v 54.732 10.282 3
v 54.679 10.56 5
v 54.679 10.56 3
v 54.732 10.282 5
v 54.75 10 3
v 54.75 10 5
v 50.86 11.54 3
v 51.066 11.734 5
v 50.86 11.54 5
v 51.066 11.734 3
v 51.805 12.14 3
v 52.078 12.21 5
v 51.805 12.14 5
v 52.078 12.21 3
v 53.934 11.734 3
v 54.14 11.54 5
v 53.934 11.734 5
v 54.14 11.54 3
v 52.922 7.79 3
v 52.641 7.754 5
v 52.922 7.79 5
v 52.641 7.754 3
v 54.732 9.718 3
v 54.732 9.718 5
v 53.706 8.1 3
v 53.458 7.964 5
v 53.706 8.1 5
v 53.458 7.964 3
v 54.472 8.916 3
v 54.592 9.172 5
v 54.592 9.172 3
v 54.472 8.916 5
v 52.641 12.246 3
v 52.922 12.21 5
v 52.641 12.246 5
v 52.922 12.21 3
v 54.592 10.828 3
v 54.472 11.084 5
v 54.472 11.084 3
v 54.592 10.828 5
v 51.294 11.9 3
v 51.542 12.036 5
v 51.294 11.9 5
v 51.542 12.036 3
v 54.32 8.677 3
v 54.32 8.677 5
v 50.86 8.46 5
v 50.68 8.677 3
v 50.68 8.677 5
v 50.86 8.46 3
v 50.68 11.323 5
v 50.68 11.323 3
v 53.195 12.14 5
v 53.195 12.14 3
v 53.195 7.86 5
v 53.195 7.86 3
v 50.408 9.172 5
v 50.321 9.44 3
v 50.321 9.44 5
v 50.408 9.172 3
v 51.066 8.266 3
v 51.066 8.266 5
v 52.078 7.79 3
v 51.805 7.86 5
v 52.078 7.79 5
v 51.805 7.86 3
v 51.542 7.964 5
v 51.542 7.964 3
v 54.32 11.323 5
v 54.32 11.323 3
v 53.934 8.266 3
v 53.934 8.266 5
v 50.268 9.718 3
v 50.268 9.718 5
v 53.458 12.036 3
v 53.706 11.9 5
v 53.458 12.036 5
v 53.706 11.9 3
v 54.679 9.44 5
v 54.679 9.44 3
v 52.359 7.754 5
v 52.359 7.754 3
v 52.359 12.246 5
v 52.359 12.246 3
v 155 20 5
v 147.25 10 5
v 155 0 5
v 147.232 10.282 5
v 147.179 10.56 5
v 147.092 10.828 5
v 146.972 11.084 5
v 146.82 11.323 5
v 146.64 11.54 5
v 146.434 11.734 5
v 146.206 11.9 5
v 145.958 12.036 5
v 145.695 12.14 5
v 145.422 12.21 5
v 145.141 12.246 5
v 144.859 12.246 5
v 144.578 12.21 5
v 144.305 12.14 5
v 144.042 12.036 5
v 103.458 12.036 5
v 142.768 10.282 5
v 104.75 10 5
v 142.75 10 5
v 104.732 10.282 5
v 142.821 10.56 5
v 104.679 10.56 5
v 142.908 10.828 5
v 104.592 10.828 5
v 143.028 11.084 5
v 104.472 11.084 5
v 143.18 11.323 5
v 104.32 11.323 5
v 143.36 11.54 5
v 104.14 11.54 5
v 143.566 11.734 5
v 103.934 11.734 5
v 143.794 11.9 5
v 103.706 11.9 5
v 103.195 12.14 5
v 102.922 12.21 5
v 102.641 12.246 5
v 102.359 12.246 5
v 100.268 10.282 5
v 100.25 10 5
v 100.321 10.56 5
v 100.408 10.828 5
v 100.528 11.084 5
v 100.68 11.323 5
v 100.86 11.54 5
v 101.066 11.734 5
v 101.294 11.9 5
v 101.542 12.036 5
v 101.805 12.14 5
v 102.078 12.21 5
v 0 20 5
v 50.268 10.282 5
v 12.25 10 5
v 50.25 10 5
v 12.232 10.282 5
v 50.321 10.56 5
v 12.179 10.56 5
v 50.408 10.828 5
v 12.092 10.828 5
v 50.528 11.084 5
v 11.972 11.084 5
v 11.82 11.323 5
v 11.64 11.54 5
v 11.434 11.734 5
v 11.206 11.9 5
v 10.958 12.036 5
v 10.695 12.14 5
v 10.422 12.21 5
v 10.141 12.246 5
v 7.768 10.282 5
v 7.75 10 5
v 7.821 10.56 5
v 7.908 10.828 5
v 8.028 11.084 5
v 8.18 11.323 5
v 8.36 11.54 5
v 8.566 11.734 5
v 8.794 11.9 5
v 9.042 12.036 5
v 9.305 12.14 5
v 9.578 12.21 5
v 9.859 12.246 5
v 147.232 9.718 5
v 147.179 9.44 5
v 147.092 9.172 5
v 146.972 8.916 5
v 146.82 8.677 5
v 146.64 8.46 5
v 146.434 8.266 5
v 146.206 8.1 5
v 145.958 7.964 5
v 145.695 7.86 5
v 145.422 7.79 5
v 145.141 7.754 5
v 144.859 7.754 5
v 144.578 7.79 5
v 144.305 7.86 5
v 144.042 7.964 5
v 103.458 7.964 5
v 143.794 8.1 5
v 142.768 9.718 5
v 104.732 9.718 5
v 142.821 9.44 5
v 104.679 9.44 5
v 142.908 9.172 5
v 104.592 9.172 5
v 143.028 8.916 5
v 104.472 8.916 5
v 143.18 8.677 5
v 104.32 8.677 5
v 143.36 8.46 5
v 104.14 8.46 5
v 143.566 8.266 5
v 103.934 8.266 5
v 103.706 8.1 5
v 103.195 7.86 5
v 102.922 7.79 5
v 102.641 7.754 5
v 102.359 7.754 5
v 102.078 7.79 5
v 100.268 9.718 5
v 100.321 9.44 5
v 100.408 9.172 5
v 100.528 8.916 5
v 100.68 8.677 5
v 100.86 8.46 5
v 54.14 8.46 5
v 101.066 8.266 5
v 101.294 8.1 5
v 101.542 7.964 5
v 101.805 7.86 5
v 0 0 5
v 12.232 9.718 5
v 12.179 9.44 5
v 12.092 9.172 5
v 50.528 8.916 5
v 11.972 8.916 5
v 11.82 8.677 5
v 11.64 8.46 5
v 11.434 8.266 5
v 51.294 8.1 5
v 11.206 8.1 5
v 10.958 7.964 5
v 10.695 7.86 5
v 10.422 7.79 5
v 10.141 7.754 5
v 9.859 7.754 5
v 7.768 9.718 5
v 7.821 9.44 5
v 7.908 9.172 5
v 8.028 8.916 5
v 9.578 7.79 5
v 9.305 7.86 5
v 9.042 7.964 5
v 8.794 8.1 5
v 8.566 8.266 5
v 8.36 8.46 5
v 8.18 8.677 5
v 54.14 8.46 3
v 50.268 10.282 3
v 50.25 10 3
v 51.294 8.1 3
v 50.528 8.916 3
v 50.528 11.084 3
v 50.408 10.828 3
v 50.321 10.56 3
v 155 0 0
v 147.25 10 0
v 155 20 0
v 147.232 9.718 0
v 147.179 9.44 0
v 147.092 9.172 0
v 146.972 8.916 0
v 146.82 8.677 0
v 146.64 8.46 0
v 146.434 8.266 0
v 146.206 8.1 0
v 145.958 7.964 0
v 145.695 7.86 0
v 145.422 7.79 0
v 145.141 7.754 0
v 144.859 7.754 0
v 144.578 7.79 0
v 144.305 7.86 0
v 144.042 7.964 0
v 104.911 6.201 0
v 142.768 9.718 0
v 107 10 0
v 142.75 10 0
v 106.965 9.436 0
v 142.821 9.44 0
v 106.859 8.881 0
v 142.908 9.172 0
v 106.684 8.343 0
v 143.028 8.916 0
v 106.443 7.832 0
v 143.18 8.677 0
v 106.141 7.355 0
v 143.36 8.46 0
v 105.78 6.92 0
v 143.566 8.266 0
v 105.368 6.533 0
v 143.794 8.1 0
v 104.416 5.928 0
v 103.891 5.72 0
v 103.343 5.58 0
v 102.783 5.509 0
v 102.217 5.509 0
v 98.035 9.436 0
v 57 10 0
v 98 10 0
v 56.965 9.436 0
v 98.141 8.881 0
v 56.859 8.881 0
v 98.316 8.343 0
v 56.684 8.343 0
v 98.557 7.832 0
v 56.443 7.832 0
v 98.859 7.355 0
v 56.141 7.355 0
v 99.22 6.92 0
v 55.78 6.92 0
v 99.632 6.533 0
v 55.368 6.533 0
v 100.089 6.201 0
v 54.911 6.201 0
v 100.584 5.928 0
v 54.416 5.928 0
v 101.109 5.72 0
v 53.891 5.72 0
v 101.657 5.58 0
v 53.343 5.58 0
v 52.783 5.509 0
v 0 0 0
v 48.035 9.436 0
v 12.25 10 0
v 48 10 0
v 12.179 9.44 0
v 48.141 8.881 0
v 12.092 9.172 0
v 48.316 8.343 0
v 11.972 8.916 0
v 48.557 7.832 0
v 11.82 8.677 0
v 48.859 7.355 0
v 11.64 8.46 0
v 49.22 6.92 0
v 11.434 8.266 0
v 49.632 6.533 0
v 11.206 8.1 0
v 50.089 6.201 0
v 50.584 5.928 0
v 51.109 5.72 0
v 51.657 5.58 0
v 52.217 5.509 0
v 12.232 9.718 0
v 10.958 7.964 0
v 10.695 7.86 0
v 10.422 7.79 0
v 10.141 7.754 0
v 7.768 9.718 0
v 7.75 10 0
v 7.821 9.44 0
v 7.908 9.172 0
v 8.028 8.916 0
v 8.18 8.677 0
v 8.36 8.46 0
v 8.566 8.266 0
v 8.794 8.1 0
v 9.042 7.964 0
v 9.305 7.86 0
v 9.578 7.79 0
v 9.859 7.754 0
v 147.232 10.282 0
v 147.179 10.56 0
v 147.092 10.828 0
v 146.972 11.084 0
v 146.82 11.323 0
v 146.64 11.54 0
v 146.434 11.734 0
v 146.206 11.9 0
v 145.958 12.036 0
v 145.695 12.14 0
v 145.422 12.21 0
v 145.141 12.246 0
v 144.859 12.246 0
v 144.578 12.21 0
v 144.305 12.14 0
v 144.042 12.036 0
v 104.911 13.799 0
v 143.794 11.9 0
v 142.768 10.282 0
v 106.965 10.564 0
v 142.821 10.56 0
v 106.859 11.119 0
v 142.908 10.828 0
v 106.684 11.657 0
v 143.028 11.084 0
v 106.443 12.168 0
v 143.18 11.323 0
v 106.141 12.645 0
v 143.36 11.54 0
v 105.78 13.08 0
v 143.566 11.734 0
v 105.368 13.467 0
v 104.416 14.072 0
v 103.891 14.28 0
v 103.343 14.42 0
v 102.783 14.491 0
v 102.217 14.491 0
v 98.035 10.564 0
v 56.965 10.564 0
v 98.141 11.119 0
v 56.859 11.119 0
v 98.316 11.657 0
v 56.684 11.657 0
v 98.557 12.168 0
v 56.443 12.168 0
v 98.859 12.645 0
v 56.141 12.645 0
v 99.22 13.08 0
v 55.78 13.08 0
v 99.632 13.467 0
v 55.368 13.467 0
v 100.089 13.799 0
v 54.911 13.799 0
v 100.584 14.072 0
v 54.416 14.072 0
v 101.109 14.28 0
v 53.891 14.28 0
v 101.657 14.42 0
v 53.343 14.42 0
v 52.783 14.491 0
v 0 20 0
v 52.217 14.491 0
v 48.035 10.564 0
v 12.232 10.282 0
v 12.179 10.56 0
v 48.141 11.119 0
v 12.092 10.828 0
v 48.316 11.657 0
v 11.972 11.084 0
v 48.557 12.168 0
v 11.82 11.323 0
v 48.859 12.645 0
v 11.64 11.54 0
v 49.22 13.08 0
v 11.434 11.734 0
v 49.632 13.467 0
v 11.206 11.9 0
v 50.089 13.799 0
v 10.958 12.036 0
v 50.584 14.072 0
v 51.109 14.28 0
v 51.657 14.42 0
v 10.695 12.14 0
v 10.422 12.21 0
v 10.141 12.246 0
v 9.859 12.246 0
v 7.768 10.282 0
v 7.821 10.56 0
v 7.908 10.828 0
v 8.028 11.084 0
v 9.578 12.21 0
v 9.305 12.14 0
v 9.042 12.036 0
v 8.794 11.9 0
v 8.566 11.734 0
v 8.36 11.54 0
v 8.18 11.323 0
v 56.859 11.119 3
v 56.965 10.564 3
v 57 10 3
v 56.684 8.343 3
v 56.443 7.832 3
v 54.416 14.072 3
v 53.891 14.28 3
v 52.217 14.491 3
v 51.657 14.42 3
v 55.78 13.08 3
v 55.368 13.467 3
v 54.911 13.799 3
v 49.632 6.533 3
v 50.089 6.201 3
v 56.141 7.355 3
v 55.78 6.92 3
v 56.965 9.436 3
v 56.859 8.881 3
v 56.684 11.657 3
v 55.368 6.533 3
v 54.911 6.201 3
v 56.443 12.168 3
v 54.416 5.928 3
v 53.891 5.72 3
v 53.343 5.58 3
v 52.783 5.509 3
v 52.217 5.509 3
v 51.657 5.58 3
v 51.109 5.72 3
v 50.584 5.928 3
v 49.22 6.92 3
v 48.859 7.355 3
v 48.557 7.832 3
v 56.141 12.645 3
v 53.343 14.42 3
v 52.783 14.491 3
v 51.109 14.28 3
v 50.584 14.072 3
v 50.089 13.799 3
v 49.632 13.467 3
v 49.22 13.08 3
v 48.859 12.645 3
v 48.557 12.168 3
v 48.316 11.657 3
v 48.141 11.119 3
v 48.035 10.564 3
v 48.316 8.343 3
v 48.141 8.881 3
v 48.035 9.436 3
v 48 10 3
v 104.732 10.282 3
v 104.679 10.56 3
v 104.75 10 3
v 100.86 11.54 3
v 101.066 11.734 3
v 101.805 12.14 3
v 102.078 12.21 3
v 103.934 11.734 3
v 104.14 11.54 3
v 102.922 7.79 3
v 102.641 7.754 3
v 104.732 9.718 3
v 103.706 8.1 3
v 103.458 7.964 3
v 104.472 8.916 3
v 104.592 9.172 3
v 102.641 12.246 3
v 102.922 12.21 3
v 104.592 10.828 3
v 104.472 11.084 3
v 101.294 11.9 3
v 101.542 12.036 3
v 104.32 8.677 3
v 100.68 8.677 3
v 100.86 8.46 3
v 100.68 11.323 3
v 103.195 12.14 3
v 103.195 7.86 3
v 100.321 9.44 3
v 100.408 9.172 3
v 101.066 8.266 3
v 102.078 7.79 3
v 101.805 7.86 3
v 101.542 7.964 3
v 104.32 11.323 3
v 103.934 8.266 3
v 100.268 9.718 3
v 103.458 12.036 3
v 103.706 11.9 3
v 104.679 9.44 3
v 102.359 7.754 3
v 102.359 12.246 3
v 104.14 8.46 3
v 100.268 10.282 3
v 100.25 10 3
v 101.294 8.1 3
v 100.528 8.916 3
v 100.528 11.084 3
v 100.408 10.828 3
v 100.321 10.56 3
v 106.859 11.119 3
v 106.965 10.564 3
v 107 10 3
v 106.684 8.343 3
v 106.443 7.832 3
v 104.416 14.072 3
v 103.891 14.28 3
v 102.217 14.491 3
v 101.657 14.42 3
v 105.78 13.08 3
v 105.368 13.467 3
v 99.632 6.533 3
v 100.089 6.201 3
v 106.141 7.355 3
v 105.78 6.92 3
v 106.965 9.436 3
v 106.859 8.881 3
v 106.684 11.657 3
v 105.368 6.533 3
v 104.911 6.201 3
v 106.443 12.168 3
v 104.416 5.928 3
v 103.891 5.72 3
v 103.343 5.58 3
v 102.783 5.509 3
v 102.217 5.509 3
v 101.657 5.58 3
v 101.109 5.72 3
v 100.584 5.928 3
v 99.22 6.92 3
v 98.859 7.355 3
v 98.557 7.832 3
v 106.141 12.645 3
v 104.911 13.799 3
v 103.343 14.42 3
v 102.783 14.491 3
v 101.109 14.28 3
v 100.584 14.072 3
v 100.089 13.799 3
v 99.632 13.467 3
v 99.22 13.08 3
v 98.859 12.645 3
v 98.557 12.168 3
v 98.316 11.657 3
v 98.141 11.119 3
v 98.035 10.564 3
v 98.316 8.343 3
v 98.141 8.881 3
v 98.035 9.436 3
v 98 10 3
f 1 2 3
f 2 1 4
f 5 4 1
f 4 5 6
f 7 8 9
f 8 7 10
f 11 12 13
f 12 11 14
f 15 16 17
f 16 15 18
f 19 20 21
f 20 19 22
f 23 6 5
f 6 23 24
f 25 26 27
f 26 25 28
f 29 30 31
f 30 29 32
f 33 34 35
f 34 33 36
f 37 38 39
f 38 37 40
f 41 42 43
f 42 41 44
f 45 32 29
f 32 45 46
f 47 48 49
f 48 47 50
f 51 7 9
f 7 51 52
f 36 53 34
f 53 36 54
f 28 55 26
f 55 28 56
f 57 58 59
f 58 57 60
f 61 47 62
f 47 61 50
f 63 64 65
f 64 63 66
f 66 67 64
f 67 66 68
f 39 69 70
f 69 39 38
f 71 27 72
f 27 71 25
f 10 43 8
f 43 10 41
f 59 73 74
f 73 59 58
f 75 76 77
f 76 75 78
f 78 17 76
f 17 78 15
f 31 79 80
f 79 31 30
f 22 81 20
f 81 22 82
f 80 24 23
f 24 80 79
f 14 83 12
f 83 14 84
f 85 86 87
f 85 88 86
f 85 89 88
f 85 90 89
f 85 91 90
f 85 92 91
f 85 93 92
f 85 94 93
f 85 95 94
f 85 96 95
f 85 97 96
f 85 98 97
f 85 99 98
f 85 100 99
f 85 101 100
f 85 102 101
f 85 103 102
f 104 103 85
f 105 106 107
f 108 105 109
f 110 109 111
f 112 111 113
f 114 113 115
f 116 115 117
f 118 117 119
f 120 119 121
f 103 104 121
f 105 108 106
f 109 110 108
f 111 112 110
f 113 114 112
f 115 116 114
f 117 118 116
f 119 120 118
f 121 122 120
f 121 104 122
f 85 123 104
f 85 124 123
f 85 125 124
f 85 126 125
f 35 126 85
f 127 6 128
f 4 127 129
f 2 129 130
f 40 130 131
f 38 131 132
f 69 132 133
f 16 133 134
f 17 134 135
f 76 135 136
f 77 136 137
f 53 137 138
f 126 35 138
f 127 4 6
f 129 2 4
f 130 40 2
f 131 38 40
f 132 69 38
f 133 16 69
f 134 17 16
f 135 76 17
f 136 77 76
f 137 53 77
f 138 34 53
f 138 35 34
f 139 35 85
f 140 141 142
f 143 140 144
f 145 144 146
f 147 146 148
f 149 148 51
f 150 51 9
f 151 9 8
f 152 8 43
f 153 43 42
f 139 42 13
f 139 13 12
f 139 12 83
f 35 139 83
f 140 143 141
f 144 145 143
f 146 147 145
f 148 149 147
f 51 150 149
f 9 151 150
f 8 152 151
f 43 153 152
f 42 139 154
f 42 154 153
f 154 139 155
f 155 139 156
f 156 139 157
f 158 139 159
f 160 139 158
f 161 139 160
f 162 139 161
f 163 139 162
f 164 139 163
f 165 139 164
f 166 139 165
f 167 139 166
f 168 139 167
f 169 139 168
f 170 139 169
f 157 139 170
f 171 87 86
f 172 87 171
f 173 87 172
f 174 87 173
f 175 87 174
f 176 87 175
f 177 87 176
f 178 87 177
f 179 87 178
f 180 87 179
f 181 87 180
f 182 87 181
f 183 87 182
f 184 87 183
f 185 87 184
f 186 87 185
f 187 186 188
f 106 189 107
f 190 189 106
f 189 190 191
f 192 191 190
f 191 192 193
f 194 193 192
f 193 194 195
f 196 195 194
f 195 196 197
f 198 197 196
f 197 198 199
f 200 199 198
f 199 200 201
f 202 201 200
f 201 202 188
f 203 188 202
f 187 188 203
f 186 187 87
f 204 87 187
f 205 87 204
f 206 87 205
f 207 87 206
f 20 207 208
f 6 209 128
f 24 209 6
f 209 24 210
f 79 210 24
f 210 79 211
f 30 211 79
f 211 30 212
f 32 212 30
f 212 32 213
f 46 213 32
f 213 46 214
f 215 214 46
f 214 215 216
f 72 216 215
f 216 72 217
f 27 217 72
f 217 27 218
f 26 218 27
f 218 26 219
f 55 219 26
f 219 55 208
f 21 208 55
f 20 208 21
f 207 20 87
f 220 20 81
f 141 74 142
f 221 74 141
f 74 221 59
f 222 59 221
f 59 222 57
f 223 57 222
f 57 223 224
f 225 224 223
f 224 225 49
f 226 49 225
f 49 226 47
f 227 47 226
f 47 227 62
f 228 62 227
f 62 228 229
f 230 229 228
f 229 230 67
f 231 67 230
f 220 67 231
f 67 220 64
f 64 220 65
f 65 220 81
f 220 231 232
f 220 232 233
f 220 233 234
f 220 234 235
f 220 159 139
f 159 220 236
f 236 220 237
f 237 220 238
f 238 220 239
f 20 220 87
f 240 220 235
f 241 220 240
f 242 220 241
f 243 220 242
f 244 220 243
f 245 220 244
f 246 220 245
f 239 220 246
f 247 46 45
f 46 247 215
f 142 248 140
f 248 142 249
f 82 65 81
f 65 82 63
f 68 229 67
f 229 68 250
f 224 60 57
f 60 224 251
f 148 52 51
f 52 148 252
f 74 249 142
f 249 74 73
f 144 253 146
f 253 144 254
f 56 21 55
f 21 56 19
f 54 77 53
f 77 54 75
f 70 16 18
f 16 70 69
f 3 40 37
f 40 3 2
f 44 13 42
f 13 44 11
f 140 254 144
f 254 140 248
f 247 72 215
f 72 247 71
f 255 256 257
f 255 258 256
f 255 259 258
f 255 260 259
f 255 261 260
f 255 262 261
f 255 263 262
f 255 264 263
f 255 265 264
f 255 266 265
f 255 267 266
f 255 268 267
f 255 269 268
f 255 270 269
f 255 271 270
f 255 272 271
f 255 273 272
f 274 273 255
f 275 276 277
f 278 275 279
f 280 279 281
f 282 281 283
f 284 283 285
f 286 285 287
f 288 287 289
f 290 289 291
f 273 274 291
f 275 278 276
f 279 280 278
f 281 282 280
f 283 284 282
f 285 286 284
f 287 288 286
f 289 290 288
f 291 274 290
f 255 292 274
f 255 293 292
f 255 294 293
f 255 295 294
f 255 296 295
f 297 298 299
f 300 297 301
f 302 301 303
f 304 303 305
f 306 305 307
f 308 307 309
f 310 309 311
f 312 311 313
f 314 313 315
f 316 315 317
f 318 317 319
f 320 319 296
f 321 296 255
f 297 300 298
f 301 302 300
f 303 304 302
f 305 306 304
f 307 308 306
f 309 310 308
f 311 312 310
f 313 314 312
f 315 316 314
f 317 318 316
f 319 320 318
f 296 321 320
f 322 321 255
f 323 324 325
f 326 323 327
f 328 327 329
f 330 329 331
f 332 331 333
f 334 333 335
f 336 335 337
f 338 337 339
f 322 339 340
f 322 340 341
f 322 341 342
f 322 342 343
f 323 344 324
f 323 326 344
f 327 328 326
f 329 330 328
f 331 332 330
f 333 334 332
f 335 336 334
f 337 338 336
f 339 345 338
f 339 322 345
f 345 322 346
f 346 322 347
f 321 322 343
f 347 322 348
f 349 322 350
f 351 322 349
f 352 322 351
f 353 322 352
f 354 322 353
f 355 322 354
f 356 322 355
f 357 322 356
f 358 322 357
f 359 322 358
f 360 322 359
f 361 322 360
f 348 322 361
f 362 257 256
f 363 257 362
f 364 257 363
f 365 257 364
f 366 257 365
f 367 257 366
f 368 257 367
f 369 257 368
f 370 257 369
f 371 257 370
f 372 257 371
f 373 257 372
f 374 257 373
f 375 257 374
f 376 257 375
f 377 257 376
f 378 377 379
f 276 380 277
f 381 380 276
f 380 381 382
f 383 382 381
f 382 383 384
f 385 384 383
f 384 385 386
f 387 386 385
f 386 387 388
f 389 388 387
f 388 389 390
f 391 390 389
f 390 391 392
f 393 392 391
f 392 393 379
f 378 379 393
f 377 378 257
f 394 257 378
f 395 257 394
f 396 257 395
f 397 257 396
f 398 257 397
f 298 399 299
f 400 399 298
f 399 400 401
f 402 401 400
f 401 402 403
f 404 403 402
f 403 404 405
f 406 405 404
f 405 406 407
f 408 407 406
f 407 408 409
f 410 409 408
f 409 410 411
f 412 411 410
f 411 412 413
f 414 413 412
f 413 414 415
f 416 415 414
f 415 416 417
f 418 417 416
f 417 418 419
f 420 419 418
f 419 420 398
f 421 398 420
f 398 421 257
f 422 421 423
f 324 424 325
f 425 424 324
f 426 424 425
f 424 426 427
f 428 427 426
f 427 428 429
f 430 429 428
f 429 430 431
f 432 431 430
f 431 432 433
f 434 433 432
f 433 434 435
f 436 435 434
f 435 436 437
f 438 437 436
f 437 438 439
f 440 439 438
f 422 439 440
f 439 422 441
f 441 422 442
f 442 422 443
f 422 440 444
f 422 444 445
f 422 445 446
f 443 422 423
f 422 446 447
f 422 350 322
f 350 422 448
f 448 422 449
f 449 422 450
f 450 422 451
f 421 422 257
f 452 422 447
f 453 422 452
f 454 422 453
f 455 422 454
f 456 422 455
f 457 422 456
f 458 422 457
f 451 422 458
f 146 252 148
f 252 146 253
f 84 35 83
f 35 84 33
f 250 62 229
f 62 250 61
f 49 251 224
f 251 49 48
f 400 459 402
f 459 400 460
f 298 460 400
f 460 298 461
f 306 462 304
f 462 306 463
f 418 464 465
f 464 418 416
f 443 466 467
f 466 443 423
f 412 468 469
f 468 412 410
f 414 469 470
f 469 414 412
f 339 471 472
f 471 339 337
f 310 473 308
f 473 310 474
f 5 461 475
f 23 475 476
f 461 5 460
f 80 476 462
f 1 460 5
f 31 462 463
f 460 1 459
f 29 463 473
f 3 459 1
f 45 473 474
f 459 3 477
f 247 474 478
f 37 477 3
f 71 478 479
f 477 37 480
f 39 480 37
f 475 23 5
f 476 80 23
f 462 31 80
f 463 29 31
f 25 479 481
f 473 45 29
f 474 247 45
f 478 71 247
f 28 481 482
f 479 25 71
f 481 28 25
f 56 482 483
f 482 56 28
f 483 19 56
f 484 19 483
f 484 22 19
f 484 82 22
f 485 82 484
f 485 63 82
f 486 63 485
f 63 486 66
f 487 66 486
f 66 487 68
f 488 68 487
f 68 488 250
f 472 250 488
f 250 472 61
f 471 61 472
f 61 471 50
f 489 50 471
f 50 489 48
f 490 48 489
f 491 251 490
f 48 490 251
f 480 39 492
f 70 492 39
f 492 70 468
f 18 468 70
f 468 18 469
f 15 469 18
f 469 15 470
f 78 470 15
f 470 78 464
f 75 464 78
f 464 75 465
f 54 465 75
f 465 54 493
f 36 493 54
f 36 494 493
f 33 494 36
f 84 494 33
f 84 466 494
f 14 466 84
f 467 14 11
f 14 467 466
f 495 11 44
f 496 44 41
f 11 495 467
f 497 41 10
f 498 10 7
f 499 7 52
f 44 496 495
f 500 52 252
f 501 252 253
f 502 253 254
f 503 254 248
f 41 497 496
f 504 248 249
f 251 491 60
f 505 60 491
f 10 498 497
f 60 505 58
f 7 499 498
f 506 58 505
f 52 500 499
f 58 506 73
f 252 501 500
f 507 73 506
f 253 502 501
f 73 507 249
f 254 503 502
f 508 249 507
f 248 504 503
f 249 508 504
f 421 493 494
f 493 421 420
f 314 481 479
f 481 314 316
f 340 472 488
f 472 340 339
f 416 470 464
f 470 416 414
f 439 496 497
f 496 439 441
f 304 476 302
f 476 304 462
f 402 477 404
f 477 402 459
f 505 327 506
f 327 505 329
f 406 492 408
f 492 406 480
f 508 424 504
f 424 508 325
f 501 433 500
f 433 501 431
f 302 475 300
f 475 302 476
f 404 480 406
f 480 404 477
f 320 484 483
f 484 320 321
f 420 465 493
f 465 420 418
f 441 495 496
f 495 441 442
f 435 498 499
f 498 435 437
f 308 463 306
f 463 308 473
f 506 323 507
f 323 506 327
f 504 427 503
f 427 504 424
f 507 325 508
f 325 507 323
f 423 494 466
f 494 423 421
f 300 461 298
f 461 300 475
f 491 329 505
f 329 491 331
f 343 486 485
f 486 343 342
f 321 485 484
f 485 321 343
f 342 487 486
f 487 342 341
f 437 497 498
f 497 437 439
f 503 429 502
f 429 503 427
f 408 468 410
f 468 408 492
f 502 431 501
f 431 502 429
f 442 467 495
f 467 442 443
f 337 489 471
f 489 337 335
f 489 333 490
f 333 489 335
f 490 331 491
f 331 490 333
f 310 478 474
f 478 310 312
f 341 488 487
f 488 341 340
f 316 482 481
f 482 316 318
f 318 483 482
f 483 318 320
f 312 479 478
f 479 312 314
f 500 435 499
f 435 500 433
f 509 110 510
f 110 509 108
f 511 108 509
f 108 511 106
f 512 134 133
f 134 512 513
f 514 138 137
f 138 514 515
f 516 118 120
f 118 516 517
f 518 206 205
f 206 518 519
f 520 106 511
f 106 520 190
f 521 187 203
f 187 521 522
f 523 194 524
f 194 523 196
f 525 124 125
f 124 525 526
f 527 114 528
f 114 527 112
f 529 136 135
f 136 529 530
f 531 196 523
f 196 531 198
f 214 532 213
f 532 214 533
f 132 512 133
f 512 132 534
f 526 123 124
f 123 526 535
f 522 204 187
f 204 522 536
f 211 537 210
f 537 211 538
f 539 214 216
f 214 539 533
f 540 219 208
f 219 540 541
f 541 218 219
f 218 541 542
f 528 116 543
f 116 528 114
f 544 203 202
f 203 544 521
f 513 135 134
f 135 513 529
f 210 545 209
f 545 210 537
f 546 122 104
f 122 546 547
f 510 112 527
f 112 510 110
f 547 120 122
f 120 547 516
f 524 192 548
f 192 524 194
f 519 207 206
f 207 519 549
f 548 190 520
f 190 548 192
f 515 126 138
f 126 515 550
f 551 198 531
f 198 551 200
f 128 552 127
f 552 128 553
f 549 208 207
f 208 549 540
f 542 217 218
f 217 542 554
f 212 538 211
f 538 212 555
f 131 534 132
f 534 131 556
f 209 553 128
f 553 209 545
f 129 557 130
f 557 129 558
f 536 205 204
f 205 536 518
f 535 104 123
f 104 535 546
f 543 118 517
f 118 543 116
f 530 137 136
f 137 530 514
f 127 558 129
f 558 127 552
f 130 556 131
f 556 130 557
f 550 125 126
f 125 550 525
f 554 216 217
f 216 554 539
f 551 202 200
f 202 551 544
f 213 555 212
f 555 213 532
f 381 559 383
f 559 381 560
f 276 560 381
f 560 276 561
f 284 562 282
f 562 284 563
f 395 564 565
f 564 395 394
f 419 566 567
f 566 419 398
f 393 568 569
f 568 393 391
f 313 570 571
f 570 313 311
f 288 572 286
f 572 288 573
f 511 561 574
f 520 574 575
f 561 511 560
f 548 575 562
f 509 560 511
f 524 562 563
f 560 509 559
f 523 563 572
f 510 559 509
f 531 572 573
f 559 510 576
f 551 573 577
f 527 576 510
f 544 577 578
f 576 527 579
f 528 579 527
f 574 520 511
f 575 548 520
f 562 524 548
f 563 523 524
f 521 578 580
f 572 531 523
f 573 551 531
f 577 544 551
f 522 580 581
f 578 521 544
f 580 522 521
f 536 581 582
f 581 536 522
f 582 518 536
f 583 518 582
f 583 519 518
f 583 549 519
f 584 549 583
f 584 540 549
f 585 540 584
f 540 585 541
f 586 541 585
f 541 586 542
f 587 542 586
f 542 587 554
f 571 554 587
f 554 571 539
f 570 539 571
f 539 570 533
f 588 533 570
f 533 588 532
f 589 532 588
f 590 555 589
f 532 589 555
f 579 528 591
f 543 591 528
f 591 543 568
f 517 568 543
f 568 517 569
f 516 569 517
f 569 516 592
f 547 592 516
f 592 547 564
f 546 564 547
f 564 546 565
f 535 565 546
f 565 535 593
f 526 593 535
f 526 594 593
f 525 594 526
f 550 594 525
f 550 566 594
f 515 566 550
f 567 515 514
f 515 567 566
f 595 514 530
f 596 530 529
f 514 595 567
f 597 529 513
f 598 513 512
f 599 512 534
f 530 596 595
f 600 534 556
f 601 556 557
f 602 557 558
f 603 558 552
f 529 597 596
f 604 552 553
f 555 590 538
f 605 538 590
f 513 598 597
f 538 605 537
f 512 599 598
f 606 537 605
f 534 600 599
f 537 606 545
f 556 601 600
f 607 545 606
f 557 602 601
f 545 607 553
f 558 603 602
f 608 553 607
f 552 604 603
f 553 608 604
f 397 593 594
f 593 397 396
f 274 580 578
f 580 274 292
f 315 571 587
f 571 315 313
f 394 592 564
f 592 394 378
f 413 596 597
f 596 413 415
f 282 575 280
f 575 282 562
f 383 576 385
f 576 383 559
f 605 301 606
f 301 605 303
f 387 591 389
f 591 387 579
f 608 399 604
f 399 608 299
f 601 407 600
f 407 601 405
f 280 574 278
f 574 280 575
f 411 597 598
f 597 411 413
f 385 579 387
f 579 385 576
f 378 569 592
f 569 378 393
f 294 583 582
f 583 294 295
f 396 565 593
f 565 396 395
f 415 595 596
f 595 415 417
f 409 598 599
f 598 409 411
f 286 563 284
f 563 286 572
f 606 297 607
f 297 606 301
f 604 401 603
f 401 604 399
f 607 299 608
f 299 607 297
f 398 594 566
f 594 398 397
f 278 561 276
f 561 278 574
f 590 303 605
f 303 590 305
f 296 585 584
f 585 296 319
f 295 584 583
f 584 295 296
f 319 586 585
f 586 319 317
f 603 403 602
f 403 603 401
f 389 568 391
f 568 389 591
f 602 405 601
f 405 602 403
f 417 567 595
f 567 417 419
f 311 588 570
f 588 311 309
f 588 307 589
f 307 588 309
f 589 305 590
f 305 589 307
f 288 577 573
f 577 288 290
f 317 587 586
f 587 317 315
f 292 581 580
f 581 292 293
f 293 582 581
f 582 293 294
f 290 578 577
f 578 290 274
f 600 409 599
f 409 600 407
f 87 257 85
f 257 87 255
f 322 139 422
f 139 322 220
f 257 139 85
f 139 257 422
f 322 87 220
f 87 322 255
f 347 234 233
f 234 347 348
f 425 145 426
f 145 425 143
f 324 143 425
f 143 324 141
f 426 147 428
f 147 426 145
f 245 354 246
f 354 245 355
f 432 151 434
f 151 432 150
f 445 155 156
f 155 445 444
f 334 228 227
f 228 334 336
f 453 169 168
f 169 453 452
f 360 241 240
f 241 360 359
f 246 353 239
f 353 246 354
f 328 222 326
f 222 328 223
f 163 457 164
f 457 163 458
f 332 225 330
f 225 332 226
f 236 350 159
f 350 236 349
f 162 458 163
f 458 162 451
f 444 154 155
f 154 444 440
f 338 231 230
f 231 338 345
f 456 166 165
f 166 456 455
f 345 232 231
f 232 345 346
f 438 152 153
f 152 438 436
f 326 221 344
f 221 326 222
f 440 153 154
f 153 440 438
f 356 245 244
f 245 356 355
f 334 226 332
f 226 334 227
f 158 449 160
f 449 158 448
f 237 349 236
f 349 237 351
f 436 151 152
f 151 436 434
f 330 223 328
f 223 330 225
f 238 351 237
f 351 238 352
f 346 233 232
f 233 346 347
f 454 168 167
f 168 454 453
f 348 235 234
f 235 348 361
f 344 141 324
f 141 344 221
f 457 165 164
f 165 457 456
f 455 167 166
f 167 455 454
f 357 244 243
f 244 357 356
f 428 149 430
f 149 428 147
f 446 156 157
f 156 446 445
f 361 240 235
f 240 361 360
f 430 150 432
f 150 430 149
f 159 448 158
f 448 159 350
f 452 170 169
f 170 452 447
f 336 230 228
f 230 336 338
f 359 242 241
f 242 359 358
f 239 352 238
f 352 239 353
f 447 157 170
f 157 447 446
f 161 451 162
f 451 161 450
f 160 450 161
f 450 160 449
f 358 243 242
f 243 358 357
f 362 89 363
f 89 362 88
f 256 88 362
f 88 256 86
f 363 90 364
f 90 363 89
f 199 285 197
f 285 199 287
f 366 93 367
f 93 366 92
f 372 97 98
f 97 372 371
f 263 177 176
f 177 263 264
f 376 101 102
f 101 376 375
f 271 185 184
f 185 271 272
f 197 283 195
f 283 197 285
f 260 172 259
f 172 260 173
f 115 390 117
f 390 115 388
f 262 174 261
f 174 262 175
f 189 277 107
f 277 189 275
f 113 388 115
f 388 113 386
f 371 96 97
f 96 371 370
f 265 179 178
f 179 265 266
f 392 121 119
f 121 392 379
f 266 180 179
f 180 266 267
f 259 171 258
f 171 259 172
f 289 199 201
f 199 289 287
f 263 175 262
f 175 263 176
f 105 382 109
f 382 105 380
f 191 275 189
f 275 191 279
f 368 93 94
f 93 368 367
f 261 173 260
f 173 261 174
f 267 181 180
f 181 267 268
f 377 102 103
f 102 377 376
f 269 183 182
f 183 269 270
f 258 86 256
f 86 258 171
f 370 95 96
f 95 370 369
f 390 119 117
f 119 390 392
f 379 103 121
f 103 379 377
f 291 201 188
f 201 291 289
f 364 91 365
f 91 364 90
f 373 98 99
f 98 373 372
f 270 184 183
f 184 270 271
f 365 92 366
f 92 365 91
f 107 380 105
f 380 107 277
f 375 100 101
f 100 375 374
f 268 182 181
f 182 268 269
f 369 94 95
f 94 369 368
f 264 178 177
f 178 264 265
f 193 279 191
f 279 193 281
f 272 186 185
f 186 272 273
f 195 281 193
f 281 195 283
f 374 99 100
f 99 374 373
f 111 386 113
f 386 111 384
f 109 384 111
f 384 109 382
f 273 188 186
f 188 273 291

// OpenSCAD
/**

PSU mounting bracket - print two of these per PSU
Meanwell LRS-200-24
@idnorton

Licenced as Creative Commons Attribution Non Commercial 3.0
See https://creativecommons.org/licenses/by-nc/3.0/

Specifically you may not sell the design or products using the design.
You're welcome to use the design to build things for your own use :)

Print settings: 0.20mm SPEED
Supports: None
Infill: 20%
Perimiters: 3

**/

hole = 4.5;
bolt_head_d = hole * 2;
bolt_head_z = 3;
hole_x = 50;
hole_y = 150;

frame = 20;

x = 115 + (frame * 2);
y = 215;
z = 3.5;

inset = (x - hole_x) / 2;

difference() {
    cube([x, frame, 5]);

    translate([(x/2) - (hole_x/2), frame/2, 0]) {
        cylinder(h = 5, d = hole, $fn = 50);
        cylinder(h = bolt_head_z, d = bolt_head_d, $fn = 50);
    }

    translate([(x/2) + (hole_x/2), frame/2, 0]) {
        cylinder(h = 5, d = hole, $fn = 50);
        cylinder(h = bolt_head_z, d = bolt_head_d, $fn = 50);
    }

    translate([frame/2, frame/2, 0]) {
        cylinder(h = 5, d = hole, $fn = 50);
    }

    translate([x - (frame/2), frame/2, 0]) {
        cylinder(h = 5, d = hole, $fn = 50);
    }
}
